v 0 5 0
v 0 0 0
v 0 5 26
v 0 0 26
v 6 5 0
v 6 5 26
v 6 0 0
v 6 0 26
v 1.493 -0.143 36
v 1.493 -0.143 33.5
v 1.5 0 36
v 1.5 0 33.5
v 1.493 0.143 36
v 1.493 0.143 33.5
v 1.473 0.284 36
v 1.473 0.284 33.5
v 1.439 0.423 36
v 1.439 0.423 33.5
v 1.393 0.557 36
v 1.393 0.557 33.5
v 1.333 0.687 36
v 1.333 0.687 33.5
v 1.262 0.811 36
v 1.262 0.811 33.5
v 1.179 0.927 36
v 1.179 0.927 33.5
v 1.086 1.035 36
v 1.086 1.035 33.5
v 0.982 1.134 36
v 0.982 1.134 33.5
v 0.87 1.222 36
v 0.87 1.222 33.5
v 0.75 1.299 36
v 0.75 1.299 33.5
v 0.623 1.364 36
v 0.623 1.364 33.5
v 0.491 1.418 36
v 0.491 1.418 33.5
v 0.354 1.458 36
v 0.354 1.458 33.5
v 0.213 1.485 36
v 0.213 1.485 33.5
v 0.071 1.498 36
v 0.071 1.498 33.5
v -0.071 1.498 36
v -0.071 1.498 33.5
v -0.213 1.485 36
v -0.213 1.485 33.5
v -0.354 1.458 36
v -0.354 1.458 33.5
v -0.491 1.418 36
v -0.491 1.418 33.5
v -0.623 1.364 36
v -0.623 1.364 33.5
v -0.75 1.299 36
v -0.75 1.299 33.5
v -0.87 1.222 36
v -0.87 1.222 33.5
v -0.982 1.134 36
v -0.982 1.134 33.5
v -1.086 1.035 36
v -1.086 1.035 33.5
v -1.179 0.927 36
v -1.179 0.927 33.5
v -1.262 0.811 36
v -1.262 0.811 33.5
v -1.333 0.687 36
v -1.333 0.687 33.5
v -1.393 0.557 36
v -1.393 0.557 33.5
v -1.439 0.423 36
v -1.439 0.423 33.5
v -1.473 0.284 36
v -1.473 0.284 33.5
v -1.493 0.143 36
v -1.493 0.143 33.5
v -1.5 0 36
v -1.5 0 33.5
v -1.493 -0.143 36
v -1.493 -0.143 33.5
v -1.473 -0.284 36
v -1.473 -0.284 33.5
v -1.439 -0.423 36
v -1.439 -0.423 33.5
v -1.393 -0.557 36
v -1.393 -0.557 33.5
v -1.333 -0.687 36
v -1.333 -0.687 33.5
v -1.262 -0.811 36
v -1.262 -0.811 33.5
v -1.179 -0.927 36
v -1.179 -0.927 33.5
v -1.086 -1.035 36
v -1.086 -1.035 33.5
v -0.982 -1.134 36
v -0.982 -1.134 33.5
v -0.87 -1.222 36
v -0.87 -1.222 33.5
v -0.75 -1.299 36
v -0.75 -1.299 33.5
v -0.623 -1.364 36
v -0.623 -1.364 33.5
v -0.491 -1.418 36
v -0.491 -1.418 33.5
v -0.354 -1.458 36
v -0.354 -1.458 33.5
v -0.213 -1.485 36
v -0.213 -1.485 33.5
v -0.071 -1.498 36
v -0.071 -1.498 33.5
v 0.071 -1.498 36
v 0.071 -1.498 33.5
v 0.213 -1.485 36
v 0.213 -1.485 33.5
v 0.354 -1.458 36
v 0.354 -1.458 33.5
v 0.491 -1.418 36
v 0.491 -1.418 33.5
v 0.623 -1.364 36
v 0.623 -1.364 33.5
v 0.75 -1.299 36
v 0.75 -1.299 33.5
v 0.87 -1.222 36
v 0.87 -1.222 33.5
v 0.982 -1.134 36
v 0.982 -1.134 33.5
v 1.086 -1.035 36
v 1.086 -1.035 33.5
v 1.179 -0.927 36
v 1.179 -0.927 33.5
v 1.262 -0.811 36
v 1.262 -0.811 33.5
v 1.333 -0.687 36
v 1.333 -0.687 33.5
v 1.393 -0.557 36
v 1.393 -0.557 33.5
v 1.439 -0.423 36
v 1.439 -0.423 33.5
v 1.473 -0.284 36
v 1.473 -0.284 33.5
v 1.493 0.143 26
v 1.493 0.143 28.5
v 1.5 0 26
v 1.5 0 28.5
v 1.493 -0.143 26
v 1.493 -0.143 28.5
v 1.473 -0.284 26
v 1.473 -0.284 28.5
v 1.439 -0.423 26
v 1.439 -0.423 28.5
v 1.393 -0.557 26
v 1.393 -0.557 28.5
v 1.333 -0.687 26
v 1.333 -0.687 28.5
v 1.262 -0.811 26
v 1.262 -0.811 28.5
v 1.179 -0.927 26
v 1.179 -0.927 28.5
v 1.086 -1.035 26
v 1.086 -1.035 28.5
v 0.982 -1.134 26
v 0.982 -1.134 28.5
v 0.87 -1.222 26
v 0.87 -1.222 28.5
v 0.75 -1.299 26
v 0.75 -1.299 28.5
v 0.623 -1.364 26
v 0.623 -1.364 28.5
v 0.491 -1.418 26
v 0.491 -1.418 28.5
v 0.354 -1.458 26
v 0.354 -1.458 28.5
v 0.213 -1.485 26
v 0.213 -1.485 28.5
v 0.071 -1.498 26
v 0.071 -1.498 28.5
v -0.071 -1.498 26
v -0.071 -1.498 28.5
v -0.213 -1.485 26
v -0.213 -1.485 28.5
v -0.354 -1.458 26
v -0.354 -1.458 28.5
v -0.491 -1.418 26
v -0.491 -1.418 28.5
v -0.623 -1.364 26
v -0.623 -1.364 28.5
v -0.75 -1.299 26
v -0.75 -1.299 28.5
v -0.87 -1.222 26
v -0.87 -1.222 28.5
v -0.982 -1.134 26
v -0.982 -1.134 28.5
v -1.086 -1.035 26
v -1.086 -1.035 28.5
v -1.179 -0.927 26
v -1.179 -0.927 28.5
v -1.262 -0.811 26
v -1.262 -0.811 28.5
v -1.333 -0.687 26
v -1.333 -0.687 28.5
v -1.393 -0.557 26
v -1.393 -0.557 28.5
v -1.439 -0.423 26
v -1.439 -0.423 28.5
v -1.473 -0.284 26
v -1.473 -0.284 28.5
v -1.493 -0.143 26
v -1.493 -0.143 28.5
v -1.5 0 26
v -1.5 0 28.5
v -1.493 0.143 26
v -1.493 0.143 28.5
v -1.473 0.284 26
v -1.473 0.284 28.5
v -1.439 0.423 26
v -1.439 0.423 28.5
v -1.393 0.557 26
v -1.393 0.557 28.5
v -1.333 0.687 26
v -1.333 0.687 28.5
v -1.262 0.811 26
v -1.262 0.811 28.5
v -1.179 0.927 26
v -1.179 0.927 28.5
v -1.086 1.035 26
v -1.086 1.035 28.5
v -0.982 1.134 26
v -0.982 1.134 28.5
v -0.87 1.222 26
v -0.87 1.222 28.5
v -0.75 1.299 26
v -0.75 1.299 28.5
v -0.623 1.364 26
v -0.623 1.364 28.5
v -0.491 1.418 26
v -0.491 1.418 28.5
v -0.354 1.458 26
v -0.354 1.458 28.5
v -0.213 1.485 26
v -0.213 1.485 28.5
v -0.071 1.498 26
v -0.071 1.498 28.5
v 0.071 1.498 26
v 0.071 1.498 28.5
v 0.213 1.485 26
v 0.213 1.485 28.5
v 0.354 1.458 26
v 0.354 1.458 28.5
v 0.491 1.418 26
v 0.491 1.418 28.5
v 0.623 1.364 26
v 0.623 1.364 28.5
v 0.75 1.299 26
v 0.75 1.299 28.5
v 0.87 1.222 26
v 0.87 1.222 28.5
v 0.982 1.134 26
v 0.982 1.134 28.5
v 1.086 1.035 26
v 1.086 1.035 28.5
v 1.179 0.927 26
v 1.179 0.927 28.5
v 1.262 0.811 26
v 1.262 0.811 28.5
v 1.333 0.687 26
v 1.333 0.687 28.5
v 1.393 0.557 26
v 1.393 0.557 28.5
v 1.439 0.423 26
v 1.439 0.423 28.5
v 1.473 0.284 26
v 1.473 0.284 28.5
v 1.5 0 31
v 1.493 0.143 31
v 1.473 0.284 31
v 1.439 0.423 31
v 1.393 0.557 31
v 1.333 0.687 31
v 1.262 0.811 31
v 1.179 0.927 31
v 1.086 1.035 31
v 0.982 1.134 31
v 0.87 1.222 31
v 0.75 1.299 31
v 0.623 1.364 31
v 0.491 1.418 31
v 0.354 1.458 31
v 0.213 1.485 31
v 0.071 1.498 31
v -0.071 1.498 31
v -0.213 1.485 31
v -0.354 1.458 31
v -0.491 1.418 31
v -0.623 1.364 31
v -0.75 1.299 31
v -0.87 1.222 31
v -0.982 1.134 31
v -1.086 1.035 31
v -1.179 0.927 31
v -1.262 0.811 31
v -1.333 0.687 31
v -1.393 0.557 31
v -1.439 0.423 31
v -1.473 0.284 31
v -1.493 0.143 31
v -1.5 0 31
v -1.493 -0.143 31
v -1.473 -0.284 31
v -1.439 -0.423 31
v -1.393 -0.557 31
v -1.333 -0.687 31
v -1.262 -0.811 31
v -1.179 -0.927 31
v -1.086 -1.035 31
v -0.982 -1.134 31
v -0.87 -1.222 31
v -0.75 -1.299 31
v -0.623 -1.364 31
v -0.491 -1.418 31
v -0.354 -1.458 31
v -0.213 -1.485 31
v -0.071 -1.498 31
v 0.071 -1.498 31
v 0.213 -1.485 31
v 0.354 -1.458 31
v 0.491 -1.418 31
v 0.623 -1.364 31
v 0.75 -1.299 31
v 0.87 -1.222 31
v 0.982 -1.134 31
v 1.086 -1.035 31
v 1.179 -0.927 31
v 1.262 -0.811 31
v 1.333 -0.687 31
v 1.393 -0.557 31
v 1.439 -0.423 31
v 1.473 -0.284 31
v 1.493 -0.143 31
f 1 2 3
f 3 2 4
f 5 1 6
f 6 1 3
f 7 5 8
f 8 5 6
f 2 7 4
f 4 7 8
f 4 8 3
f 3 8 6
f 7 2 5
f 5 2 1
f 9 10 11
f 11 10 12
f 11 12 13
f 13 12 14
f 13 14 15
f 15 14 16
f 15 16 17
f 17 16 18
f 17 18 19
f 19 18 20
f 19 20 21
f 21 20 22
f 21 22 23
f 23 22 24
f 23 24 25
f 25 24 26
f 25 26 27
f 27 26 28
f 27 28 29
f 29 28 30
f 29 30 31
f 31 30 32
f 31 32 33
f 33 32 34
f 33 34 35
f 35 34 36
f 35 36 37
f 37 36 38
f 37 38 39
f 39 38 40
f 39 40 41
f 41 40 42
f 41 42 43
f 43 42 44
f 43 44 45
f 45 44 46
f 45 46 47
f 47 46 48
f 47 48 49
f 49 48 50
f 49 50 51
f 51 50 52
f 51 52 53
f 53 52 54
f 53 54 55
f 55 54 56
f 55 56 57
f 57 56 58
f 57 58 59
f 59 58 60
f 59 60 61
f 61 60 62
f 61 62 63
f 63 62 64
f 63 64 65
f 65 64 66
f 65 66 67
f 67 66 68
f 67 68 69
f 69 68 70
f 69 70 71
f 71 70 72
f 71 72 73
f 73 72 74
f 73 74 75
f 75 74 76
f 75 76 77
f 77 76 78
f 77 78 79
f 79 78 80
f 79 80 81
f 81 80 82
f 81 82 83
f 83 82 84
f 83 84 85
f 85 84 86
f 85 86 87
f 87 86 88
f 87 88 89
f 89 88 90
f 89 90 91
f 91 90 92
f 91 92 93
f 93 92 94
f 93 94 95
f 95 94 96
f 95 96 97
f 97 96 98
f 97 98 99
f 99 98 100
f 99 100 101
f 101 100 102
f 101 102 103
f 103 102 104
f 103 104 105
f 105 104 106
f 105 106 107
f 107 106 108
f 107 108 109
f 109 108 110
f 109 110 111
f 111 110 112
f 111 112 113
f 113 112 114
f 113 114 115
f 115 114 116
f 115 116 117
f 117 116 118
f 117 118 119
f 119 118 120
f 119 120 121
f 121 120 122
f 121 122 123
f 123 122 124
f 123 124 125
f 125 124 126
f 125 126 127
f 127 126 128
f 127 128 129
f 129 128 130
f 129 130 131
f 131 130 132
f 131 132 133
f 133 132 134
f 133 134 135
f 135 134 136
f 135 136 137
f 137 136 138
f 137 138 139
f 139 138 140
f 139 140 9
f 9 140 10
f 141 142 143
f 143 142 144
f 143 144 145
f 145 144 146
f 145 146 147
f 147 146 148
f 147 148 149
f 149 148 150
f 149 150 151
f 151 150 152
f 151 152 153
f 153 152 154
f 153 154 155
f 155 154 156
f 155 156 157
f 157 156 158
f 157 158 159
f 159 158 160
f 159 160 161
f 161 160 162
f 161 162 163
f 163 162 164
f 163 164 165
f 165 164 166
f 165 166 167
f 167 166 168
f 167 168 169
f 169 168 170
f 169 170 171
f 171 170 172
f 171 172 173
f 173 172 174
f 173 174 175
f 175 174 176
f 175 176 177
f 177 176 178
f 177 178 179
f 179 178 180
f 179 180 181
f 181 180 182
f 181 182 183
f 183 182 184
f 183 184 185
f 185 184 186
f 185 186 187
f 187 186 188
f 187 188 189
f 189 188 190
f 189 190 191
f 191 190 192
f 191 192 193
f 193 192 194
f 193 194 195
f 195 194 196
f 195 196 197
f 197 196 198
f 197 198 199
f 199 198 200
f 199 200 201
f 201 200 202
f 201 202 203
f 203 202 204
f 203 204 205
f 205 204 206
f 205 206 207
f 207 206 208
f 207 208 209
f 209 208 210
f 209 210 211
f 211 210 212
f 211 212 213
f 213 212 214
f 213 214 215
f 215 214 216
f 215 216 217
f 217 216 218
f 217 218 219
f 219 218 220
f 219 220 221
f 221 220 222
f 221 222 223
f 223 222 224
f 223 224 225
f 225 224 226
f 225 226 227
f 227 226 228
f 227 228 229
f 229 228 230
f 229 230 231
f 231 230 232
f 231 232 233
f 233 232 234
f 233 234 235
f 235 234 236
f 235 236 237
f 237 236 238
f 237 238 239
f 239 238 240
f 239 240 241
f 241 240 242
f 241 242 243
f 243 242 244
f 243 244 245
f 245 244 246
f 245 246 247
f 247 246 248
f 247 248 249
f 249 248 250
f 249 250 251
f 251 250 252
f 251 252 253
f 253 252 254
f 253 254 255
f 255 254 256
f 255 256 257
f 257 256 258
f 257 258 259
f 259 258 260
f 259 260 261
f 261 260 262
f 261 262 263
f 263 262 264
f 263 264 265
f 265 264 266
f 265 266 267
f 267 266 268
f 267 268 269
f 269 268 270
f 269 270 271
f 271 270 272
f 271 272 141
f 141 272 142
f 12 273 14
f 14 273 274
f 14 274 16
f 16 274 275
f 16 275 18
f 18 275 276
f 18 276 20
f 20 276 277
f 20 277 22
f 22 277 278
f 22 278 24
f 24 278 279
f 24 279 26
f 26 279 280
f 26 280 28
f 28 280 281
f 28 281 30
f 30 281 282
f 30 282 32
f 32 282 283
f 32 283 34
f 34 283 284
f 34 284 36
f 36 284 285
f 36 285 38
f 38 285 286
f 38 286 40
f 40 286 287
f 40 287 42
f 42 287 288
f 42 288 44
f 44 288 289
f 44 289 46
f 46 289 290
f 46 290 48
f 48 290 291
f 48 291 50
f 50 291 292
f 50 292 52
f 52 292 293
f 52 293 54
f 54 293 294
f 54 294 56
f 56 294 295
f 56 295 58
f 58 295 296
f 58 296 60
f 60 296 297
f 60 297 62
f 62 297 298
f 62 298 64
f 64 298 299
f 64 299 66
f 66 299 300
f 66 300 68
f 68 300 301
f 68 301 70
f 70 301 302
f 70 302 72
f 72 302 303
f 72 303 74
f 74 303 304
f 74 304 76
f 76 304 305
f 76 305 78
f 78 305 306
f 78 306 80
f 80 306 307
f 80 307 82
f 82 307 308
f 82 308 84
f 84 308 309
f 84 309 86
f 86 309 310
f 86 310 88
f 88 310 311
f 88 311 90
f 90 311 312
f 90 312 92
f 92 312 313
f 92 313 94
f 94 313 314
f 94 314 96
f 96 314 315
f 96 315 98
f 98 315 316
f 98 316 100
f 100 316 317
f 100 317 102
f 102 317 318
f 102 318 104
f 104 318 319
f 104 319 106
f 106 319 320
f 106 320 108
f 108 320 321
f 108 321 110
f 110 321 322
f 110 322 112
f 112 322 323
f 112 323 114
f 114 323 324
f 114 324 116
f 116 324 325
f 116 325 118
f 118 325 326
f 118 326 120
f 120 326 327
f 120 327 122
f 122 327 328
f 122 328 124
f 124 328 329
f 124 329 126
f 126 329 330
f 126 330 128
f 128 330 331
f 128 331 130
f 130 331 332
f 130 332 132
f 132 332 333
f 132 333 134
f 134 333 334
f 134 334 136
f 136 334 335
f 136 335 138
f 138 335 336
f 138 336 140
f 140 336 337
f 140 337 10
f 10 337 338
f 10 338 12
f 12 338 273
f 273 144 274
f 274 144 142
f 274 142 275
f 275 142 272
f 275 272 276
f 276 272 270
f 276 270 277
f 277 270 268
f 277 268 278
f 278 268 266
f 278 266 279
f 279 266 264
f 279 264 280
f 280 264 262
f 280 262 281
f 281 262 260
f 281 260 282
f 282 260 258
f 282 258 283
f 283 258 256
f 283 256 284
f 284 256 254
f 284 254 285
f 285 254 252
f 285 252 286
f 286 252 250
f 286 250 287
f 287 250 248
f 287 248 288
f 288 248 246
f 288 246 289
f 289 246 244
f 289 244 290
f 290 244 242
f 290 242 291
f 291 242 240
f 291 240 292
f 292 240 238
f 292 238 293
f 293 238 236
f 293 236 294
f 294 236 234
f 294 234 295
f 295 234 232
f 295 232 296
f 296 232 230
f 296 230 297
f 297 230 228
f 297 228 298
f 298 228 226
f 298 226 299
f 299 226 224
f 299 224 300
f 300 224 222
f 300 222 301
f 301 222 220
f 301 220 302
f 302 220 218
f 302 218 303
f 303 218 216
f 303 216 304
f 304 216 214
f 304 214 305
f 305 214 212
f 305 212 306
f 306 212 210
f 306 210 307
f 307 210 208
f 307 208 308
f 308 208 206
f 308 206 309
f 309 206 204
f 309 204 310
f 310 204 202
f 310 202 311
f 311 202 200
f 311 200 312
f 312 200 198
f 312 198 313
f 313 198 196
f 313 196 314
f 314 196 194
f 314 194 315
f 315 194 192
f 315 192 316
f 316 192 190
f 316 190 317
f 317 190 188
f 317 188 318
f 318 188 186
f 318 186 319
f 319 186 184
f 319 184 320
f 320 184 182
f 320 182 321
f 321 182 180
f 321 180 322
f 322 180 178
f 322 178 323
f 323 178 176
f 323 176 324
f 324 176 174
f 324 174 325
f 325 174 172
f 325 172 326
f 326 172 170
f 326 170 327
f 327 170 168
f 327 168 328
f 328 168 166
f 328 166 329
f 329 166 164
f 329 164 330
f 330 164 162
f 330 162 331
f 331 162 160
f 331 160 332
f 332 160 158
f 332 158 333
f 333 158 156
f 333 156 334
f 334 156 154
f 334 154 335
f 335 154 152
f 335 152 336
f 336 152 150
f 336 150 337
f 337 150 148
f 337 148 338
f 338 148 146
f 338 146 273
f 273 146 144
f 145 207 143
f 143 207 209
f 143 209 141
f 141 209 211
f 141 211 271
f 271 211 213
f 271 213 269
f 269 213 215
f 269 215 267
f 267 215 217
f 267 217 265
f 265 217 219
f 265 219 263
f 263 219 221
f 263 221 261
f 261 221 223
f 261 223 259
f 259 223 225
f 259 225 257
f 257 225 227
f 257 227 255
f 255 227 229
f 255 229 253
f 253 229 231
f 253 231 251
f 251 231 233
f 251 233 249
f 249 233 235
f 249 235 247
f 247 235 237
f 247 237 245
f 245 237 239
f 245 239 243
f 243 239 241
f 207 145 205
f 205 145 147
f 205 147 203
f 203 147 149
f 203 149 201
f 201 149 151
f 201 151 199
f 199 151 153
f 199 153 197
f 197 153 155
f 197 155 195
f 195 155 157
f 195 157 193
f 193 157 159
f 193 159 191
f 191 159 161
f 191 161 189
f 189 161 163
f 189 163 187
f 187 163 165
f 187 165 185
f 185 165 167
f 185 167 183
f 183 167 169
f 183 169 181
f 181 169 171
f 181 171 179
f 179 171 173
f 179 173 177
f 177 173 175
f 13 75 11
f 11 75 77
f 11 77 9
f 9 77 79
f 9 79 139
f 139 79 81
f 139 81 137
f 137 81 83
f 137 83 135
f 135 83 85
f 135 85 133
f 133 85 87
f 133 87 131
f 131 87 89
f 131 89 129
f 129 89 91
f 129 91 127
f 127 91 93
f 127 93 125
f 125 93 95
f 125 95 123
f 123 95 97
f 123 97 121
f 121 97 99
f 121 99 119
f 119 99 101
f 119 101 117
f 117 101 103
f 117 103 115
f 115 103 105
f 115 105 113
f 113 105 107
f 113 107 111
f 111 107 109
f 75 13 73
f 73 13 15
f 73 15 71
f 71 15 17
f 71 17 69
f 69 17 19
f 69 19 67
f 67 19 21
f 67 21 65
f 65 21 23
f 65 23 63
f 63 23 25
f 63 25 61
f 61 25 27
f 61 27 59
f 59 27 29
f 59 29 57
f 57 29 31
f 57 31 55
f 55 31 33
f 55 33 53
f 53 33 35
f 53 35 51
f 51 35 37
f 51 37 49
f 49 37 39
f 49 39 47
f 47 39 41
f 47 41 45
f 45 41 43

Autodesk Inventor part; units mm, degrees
ref_plane "YZ Plane" through (0, 0, 0) normal (1, 0, 0) x (0, 1, 0)
ref_plane "XZ Plane" through (0, 0, 0) normal (0, 1, 0) x (-1, 0, 0)
sketch "Skizze1" plane through (0, 0, 0) normal (0, 0, 1) x (1, 0, 0)
  line L0 (0, 0) -> (6, 0)
  line L1 (6, 0) -> (6, 5)
  line L2 (6, 5) -> (0, 5)
  line L3 (0, 5) -> (0, 0)
extrude "Extrusion1" add sketch "Skizze1" along normal blind 26
ref_plane "Arbeitsebene1" through (0, 0, 26) normal (0, 0, 1) x (1, 0, 0)
sketch "Skizze2" plane through (0, 0, 26) normal (0, 0, 1) x (1, 0, 0)
  circle A0 centre (0, 0) radius 1.5
extrude "Extrusion2" add sketch "Skizze2" along normal blind 10 separate body
properties part number "Motor_N20"
